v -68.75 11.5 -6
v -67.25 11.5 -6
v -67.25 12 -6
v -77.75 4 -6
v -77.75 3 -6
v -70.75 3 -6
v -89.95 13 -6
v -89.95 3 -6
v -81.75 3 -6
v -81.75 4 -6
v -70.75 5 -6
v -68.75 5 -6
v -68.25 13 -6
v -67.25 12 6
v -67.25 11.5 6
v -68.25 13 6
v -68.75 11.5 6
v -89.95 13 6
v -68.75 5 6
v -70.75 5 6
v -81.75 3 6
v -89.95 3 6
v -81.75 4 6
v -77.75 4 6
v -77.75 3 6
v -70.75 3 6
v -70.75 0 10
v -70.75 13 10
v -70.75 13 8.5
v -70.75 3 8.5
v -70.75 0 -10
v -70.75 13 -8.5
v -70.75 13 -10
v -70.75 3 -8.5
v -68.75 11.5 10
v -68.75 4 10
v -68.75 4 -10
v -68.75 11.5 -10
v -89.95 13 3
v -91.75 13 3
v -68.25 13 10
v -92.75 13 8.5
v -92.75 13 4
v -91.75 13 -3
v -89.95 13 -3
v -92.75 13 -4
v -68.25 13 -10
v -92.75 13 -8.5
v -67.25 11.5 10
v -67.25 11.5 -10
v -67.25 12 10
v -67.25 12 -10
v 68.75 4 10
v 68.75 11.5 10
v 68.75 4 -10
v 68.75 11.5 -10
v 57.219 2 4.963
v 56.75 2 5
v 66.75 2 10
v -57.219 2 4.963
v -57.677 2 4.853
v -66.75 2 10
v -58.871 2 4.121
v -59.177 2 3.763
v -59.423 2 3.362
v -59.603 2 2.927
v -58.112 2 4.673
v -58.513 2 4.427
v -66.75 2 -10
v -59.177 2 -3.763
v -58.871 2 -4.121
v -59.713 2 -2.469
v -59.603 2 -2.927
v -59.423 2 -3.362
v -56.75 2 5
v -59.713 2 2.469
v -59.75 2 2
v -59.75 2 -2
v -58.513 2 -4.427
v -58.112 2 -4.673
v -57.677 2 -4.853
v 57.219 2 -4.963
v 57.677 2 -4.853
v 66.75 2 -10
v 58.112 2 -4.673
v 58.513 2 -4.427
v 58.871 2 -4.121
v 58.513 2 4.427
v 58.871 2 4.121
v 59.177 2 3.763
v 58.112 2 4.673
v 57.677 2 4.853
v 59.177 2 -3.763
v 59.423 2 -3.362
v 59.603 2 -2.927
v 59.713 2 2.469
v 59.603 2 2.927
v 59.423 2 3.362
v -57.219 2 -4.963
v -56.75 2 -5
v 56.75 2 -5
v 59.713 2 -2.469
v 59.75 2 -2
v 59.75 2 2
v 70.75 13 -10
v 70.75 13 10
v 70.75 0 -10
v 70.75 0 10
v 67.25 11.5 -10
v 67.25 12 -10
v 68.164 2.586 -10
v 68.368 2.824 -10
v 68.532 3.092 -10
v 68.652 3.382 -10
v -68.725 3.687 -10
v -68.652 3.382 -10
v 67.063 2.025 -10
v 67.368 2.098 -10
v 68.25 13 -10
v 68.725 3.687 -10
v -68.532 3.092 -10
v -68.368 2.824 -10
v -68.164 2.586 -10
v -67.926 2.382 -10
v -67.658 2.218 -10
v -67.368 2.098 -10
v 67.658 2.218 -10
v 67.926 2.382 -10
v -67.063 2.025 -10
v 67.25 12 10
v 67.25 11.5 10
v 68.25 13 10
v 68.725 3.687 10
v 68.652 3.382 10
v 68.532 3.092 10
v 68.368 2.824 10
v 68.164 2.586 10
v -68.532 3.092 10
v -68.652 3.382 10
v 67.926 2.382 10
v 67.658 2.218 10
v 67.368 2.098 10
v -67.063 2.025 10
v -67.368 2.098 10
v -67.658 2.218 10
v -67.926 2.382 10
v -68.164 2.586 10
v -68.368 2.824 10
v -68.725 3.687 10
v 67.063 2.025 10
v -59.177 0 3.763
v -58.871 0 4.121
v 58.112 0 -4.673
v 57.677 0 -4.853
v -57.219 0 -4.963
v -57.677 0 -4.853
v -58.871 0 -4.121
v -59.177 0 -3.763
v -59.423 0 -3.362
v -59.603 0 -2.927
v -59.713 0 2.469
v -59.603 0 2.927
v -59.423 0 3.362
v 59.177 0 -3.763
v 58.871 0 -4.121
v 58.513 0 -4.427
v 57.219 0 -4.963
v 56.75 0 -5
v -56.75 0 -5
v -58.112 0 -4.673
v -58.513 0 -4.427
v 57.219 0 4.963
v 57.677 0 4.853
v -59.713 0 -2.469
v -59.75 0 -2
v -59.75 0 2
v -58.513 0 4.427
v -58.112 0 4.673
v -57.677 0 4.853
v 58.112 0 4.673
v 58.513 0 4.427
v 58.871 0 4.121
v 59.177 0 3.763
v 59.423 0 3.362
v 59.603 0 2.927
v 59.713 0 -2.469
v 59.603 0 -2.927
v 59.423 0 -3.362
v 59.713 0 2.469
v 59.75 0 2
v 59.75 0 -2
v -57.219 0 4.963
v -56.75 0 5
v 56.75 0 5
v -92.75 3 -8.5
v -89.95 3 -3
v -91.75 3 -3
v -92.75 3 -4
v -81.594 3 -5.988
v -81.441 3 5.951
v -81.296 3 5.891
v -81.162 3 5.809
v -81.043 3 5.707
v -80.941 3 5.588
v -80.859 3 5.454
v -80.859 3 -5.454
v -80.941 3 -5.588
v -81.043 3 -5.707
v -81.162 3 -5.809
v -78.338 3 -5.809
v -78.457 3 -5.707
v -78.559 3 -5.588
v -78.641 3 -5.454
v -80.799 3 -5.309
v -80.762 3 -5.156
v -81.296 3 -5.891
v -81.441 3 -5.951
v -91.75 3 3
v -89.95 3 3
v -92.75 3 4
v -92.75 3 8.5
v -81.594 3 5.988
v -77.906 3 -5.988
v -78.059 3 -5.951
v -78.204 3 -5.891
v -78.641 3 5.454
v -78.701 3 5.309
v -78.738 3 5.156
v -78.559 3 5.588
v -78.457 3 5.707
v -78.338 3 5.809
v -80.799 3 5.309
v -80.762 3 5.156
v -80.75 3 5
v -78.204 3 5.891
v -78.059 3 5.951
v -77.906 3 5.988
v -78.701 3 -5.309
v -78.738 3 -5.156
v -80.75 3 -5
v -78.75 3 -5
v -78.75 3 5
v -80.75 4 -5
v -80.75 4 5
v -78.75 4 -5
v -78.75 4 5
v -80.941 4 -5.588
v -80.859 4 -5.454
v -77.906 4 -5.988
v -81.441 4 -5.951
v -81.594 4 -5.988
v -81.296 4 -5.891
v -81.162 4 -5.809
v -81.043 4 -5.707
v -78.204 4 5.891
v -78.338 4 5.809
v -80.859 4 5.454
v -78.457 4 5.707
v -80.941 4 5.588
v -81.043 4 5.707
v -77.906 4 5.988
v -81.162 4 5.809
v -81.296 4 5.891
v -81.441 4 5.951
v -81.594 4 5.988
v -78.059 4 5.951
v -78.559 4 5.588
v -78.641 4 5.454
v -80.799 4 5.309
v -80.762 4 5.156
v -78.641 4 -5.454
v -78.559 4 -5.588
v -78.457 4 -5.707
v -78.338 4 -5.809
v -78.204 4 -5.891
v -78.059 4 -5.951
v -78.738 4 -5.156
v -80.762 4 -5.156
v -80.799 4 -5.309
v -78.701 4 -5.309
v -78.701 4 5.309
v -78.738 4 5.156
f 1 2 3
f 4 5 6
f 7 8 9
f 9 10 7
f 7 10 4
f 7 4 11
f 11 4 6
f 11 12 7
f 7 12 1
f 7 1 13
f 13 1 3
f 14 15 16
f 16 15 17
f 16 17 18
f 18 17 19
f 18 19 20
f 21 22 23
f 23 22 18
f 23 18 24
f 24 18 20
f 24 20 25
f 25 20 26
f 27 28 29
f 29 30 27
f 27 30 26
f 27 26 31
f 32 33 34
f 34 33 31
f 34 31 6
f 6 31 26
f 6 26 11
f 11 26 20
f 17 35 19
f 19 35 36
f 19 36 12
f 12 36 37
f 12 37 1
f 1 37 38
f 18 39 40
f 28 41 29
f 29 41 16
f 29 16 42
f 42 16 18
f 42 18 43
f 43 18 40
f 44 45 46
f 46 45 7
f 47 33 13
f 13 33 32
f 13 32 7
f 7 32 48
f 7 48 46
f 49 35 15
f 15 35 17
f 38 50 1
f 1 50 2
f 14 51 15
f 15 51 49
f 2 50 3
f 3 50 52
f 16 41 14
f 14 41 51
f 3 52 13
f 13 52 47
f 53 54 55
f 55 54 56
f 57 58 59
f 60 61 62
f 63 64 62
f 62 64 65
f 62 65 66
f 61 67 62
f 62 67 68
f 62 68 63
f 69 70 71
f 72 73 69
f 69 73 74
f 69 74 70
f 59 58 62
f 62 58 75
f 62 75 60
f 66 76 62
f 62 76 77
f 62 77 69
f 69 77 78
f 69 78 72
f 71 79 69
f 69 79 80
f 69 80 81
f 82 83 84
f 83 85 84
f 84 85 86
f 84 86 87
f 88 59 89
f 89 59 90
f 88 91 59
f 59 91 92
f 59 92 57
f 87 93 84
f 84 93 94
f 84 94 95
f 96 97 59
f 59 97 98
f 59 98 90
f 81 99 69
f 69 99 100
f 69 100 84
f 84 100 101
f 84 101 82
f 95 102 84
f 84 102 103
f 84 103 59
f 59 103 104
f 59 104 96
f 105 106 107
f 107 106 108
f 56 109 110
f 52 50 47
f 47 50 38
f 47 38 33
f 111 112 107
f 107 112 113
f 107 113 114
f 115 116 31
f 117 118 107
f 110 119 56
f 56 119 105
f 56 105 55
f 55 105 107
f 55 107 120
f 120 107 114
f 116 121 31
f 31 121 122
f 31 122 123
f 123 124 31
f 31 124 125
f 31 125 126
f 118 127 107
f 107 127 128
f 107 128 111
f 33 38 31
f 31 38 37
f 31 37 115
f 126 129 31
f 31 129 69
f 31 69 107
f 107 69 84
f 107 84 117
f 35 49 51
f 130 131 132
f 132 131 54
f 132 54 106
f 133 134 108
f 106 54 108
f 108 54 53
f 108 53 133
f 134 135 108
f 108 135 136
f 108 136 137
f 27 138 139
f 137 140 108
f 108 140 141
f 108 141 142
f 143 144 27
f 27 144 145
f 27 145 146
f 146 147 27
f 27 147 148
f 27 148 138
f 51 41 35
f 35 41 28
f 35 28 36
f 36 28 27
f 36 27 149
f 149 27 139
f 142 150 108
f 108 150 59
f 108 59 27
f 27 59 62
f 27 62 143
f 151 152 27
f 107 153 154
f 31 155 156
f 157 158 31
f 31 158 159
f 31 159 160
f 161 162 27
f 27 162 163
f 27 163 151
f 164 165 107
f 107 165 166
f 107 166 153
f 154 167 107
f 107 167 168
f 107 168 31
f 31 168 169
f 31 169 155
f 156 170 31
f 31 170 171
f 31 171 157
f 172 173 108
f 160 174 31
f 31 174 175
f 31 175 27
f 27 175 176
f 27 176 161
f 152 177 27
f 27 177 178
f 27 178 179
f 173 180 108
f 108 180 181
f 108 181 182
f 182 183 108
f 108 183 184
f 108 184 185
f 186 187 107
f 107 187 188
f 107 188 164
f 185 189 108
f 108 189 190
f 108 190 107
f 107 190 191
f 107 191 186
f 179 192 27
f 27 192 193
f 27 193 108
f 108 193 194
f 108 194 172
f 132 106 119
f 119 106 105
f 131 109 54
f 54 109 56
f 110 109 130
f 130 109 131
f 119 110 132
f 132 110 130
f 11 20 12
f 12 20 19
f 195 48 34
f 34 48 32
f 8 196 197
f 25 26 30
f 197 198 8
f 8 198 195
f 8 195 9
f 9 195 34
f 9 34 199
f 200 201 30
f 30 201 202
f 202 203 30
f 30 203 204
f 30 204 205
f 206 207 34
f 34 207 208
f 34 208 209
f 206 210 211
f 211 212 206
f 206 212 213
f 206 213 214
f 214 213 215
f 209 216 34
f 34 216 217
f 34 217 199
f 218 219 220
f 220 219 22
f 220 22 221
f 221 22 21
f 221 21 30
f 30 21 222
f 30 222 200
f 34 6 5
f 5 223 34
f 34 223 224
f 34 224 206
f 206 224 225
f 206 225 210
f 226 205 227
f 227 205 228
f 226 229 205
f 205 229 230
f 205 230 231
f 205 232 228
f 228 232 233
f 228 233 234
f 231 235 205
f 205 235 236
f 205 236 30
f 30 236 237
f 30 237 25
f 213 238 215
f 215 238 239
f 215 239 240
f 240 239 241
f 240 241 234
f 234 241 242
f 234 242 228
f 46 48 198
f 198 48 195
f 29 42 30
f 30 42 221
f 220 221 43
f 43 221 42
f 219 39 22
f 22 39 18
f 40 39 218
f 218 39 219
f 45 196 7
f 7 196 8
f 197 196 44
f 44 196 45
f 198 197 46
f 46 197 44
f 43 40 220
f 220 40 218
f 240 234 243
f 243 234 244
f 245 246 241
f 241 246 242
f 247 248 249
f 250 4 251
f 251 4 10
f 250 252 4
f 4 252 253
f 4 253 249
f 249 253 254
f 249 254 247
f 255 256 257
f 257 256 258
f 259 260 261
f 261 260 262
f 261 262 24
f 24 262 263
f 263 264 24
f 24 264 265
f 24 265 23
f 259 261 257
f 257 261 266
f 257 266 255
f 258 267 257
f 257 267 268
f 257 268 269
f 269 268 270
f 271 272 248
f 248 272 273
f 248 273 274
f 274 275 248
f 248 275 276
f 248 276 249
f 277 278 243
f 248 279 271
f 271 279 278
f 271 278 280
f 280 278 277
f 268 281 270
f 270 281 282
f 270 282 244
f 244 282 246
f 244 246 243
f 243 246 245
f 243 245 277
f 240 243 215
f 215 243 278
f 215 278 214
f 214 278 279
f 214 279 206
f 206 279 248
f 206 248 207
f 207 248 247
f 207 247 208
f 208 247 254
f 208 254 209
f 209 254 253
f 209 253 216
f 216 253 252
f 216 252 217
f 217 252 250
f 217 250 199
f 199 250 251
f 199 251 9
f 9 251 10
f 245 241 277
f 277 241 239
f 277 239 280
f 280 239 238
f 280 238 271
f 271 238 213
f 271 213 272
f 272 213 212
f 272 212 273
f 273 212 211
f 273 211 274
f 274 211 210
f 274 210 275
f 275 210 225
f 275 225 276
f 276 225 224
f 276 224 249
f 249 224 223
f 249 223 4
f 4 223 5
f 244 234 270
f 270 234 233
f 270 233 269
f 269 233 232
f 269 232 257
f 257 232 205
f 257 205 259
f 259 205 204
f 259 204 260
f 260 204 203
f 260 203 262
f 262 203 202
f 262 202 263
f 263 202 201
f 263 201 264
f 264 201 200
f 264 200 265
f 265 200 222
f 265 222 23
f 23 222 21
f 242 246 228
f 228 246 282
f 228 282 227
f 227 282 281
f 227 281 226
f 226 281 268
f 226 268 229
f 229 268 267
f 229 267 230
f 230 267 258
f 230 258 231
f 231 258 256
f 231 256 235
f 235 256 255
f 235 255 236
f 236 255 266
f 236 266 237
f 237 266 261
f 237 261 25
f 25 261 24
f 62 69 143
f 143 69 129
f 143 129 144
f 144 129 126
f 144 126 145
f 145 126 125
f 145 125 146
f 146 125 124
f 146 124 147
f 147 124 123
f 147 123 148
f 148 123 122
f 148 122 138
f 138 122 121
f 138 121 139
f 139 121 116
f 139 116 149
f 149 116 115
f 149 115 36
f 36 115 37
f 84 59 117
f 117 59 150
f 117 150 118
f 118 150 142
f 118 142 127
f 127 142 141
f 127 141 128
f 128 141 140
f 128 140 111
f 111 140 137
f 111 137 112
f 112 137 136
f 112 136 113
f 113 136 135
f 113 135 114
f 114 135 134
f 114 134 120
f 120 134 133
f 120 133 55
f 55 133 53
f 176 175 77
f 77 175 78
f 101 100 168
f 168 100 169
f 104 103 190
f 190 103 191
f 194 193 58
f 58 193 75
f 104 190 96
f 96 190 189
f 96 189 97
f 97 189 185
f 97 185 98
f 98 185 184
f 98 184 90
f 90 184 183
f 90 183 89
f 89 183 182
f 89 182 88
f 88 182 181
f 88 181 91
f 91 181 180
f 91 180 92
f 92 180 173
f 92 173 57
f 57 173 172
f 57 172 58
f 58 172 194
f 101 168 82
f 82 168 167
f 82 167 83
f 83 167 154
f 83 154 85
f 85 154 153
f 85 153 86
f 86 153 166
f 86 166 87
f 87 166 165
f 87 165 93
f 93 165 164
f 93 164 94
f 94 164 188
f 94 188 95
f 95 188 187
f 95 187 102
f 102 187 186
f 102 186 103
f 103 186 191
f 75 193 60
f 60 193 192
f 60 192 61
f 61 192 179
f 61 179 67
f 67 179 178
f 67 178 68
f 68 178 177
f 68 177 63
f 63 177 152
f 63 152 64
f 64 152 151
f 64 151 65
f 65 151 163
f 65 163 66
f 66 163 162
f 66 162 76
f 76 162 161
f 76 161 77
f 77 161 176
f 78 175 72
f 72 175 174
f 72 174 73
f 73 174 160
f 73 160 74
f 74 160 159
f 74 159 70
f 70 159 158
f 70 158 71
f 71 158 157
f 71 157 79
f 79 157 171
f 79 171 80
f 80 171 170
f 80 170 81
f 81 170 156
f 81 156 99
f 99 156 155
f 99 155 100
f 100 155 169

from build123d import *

# Parameters (mm, degrees)
SKETCH1_W               = 141.5
SKETCH1_H               = 20
BOSS_EXTRUDE1_DEPTH     = 2
SKETCH2_W               = 2
SKETCH2_H               = 20
BOSS_EXTRUDE2_DEPTH     = 11
SKETCH3_W               = 20
SKETCH3_H               = 1.5
BOSS_EXTRUDE3_DEPTH     = 1.5
CHAMFER1_SIZE           = 1
SKETCH4_W               = 20
SKETCH4_H               = 1.5
BOSS_EXTRUDE4_DEPTH     = 1.5
CHAMFER2_SIZE           = 1
CUT_EXTRUDE1_DEPTH      = 1.5
CUT_EXTRUDE1_DEPTH_BACK = 11.5
SKETCH5_W               = 12
SKETCH5_H               = 14.324896111
SKETCH6_W               = 2.5
SKETCH6_H               = 10
BOSS_EXTRUDE5_DEPTH     = 22
SKETCH7_W               = 2.8
SKETCH7_H               = 10
BOSS_EXTRUDE6_DEPTH     = 3
SKETCH8_W               = 2.8
SKETCH8_H               = 10
BOSS_EXTRUDE7_DEPTH     = 3
CHAMFER3_SIZE           = 1
SKETCH9_W               = 2
SKETCH9_H               = 17
BOSS_EXTRUDE8_DEPTH     = 1
FILLET1_R               = 1
FILLET2_R               = 2
SKETCH11_W              = 119.5
SKETCH11_H              = 10
CUT_EXTRUDE2_DEPTH      = 10
FILLET3_R               = 3


with BuildPart() as part:
    # Sketch1 → Boss-Extrude1 (new body)
    with BuildSketch(Plane(origin=(0, 0, 0), x_dir=(1, 0, 0), z_dir=(0, 1, 0))):
        Rectangle(SKETCH1_W, SKETCH1_H)
    extrude(amount=BOSS_EXTRUDE1_DEPTH)

    # Sketch2 → Boss-Extrude2 (add)
    with BuildSketch(Plane(origin=(0, 2, 0), x_dir=(1, 0, 0), z_dir=(0, 1, 0))):
        with Locations((69.75, 0)):
            Rectangle(SKETCH2_W, SKETCH2_H)
        with Locations((-69.75, 0)):
            Rectangle(SKETCH2_W, SKETCH2_H)
    extrude(amount=BOSS_EXTRUDE2_DEPTH)

    # Sketch3 → Boss-Extrude3 (add)
    with BuildSketch(Plane.ZY.offset(-68.75)):
        with Locations((0, 12.25)):
            Rectangle(SKETCH3_W, SKETCH3_H)
    extrude(amount=BOSS_EXTRUDE3_DEPTH)

    # Chamfer1
    chamfer1_edges = [part.edges().sort_by_distance(p)[0] for p in [
        (67.25, 13, 0),
    ]]
    chamfer(chamfer1_edges, length=CHAMFER1_SIZE)

    # Sketch4 → Boss-Extrude4 (add)
    with BuildSketch(Plane(origin=(-68.75, 0, 0), x_dir=(0, 0, -1), z_dir=(1, 0, 0))):
        with Locations((0, 12.25)):
            Rectangle(SKETCH4_W, SKETCH4_H)
    extrude(amount=BOSS_EXTRUDE4_DEPTH)

    # Chamfer2
    chamfer2_edges = [part.edges().sort_by_distance(p)[0] for p in [
        (-67.25, 13, 0),
    ]]
    chamfer(chamfer2_edges, length=CHAMFER2_SIZE)

    # Sketch5 → Cut-Extrude1 (cut, two sides: drawn at the far end of the back side and taken through both)
    with BuildSketch(Plane(origin=(-68.75, 0, 0), x_dir=(0, 0, -1), z_dir=(1, 0, 0)).offset(-CUT_EXTRUDE1_DEPTH_BACK)):
        with Locations((0, 12.162448056)):
            Rectangle(SKETCH5_W, SKETCH5_H)
    extrude(amount=CUT_EXTRUDE1_DEPTH + CUT_EXTRUDE1_DEPTH_BACK, mode=Mode.SUBTRACT)

    # Sketch6 → Boss-Extrude5 (add)
    with BuildSketch(Plane.ZY.offset(70.75)):
        with Locations((-7.25, 8)):
            Rectangle(SKETCH6_W, SKETCH6_H)
        with Locations((7.25, 8)):
            Rectangle(SKETCH6_W, SKETCH6_H)
    extrude(amount=BOSS_EXTRUDE5_DEPTH)

    # Sketch7 → Boss-Extrude6 (add)
    with BuildSketch(Plane(origin=(0, 0, 6), x_dir=(-1, 0, 0), z_dir=(0, 0, -1))):
        with Locations((91.35, 8)):
            Rectangle(SKETCH7_W, SKETCH7_H)
    extrude(amount=BOSS_EXTRUDE6_DEPTH)

    # Sketch8 → Boss-Extrude7 (add)
    with BuildSketch(Plane.XY.offset(-6)):
        with Locations((-91.35, 8)):
            Rectangle(SKETCH8_W, SKETCH8_H)
    extrude(amount=BOSS_EXTRUDE7_DEPTH)

    # Chamfer3
    chamfer3_edges = [part.edges().sort_by_distance(p)[0] for p in [
        (-92.75, 8, 3),
        (-92.75, 8, -3),
    ]]
    chamfer(chamfer3_edges, length=CHAMFER3_SIZE)

    # Sketch9 → Boss-Extrude8 (add)
    with BuildSketch(Plane.XZ.offset(-3)):
        with Locations((-79.75, 0)):
            Rectangle(SKETCH9_W, SKETCH9_H)
    extrude(amount=-BOSS_EXTRUDE8_DEPTH)

    # Fillet1
    fillet1_edges = [part.edges().sort_by_distance(p)[0] for p in [
        (-80.75, 3.5, -6),
        (-80.75, 3.5, 6),
        (-78.75, 3.5, -6),
        (-78.75, 3.5, 6),
    ]]
    fillet(fillet1_edges, radius=FILLET1_R)

    # Fillet2
    fillet2_edges = [part.edges().sort_by_distance(p)[0] for p in [
        (68.75, 2, 0),
        (-68.75, 2, 0),
    ]]
    fillet(fillet2_edges, radius=FILLET2_R)

    # Sketch11 → Cut-Extrude2 (cut)
    with BuildSketch(Plane(origin=(0, 2, 0), x_dir=(1, 0, 0), z_dir=(0, 1, 0))):
        Rectangle(SKETCH11_W, SKETCH11_H)
    extrude(amount=-CUT_EXTRUDE2_DEPTH, mode=Mode.SUBTRACT)

    # Fillet3
    fillet3_edges = [part.edges().sort_by_distance(p)[0] for p in [
        (-59.75, 1, 5),
        (-59.75, 1, -5),
        (59.75, 1, -5),
        (59.75, 1, 5),
    ]]
    fillet(fillet3_edges, radius=FILLET3_R)


solid = part.part
